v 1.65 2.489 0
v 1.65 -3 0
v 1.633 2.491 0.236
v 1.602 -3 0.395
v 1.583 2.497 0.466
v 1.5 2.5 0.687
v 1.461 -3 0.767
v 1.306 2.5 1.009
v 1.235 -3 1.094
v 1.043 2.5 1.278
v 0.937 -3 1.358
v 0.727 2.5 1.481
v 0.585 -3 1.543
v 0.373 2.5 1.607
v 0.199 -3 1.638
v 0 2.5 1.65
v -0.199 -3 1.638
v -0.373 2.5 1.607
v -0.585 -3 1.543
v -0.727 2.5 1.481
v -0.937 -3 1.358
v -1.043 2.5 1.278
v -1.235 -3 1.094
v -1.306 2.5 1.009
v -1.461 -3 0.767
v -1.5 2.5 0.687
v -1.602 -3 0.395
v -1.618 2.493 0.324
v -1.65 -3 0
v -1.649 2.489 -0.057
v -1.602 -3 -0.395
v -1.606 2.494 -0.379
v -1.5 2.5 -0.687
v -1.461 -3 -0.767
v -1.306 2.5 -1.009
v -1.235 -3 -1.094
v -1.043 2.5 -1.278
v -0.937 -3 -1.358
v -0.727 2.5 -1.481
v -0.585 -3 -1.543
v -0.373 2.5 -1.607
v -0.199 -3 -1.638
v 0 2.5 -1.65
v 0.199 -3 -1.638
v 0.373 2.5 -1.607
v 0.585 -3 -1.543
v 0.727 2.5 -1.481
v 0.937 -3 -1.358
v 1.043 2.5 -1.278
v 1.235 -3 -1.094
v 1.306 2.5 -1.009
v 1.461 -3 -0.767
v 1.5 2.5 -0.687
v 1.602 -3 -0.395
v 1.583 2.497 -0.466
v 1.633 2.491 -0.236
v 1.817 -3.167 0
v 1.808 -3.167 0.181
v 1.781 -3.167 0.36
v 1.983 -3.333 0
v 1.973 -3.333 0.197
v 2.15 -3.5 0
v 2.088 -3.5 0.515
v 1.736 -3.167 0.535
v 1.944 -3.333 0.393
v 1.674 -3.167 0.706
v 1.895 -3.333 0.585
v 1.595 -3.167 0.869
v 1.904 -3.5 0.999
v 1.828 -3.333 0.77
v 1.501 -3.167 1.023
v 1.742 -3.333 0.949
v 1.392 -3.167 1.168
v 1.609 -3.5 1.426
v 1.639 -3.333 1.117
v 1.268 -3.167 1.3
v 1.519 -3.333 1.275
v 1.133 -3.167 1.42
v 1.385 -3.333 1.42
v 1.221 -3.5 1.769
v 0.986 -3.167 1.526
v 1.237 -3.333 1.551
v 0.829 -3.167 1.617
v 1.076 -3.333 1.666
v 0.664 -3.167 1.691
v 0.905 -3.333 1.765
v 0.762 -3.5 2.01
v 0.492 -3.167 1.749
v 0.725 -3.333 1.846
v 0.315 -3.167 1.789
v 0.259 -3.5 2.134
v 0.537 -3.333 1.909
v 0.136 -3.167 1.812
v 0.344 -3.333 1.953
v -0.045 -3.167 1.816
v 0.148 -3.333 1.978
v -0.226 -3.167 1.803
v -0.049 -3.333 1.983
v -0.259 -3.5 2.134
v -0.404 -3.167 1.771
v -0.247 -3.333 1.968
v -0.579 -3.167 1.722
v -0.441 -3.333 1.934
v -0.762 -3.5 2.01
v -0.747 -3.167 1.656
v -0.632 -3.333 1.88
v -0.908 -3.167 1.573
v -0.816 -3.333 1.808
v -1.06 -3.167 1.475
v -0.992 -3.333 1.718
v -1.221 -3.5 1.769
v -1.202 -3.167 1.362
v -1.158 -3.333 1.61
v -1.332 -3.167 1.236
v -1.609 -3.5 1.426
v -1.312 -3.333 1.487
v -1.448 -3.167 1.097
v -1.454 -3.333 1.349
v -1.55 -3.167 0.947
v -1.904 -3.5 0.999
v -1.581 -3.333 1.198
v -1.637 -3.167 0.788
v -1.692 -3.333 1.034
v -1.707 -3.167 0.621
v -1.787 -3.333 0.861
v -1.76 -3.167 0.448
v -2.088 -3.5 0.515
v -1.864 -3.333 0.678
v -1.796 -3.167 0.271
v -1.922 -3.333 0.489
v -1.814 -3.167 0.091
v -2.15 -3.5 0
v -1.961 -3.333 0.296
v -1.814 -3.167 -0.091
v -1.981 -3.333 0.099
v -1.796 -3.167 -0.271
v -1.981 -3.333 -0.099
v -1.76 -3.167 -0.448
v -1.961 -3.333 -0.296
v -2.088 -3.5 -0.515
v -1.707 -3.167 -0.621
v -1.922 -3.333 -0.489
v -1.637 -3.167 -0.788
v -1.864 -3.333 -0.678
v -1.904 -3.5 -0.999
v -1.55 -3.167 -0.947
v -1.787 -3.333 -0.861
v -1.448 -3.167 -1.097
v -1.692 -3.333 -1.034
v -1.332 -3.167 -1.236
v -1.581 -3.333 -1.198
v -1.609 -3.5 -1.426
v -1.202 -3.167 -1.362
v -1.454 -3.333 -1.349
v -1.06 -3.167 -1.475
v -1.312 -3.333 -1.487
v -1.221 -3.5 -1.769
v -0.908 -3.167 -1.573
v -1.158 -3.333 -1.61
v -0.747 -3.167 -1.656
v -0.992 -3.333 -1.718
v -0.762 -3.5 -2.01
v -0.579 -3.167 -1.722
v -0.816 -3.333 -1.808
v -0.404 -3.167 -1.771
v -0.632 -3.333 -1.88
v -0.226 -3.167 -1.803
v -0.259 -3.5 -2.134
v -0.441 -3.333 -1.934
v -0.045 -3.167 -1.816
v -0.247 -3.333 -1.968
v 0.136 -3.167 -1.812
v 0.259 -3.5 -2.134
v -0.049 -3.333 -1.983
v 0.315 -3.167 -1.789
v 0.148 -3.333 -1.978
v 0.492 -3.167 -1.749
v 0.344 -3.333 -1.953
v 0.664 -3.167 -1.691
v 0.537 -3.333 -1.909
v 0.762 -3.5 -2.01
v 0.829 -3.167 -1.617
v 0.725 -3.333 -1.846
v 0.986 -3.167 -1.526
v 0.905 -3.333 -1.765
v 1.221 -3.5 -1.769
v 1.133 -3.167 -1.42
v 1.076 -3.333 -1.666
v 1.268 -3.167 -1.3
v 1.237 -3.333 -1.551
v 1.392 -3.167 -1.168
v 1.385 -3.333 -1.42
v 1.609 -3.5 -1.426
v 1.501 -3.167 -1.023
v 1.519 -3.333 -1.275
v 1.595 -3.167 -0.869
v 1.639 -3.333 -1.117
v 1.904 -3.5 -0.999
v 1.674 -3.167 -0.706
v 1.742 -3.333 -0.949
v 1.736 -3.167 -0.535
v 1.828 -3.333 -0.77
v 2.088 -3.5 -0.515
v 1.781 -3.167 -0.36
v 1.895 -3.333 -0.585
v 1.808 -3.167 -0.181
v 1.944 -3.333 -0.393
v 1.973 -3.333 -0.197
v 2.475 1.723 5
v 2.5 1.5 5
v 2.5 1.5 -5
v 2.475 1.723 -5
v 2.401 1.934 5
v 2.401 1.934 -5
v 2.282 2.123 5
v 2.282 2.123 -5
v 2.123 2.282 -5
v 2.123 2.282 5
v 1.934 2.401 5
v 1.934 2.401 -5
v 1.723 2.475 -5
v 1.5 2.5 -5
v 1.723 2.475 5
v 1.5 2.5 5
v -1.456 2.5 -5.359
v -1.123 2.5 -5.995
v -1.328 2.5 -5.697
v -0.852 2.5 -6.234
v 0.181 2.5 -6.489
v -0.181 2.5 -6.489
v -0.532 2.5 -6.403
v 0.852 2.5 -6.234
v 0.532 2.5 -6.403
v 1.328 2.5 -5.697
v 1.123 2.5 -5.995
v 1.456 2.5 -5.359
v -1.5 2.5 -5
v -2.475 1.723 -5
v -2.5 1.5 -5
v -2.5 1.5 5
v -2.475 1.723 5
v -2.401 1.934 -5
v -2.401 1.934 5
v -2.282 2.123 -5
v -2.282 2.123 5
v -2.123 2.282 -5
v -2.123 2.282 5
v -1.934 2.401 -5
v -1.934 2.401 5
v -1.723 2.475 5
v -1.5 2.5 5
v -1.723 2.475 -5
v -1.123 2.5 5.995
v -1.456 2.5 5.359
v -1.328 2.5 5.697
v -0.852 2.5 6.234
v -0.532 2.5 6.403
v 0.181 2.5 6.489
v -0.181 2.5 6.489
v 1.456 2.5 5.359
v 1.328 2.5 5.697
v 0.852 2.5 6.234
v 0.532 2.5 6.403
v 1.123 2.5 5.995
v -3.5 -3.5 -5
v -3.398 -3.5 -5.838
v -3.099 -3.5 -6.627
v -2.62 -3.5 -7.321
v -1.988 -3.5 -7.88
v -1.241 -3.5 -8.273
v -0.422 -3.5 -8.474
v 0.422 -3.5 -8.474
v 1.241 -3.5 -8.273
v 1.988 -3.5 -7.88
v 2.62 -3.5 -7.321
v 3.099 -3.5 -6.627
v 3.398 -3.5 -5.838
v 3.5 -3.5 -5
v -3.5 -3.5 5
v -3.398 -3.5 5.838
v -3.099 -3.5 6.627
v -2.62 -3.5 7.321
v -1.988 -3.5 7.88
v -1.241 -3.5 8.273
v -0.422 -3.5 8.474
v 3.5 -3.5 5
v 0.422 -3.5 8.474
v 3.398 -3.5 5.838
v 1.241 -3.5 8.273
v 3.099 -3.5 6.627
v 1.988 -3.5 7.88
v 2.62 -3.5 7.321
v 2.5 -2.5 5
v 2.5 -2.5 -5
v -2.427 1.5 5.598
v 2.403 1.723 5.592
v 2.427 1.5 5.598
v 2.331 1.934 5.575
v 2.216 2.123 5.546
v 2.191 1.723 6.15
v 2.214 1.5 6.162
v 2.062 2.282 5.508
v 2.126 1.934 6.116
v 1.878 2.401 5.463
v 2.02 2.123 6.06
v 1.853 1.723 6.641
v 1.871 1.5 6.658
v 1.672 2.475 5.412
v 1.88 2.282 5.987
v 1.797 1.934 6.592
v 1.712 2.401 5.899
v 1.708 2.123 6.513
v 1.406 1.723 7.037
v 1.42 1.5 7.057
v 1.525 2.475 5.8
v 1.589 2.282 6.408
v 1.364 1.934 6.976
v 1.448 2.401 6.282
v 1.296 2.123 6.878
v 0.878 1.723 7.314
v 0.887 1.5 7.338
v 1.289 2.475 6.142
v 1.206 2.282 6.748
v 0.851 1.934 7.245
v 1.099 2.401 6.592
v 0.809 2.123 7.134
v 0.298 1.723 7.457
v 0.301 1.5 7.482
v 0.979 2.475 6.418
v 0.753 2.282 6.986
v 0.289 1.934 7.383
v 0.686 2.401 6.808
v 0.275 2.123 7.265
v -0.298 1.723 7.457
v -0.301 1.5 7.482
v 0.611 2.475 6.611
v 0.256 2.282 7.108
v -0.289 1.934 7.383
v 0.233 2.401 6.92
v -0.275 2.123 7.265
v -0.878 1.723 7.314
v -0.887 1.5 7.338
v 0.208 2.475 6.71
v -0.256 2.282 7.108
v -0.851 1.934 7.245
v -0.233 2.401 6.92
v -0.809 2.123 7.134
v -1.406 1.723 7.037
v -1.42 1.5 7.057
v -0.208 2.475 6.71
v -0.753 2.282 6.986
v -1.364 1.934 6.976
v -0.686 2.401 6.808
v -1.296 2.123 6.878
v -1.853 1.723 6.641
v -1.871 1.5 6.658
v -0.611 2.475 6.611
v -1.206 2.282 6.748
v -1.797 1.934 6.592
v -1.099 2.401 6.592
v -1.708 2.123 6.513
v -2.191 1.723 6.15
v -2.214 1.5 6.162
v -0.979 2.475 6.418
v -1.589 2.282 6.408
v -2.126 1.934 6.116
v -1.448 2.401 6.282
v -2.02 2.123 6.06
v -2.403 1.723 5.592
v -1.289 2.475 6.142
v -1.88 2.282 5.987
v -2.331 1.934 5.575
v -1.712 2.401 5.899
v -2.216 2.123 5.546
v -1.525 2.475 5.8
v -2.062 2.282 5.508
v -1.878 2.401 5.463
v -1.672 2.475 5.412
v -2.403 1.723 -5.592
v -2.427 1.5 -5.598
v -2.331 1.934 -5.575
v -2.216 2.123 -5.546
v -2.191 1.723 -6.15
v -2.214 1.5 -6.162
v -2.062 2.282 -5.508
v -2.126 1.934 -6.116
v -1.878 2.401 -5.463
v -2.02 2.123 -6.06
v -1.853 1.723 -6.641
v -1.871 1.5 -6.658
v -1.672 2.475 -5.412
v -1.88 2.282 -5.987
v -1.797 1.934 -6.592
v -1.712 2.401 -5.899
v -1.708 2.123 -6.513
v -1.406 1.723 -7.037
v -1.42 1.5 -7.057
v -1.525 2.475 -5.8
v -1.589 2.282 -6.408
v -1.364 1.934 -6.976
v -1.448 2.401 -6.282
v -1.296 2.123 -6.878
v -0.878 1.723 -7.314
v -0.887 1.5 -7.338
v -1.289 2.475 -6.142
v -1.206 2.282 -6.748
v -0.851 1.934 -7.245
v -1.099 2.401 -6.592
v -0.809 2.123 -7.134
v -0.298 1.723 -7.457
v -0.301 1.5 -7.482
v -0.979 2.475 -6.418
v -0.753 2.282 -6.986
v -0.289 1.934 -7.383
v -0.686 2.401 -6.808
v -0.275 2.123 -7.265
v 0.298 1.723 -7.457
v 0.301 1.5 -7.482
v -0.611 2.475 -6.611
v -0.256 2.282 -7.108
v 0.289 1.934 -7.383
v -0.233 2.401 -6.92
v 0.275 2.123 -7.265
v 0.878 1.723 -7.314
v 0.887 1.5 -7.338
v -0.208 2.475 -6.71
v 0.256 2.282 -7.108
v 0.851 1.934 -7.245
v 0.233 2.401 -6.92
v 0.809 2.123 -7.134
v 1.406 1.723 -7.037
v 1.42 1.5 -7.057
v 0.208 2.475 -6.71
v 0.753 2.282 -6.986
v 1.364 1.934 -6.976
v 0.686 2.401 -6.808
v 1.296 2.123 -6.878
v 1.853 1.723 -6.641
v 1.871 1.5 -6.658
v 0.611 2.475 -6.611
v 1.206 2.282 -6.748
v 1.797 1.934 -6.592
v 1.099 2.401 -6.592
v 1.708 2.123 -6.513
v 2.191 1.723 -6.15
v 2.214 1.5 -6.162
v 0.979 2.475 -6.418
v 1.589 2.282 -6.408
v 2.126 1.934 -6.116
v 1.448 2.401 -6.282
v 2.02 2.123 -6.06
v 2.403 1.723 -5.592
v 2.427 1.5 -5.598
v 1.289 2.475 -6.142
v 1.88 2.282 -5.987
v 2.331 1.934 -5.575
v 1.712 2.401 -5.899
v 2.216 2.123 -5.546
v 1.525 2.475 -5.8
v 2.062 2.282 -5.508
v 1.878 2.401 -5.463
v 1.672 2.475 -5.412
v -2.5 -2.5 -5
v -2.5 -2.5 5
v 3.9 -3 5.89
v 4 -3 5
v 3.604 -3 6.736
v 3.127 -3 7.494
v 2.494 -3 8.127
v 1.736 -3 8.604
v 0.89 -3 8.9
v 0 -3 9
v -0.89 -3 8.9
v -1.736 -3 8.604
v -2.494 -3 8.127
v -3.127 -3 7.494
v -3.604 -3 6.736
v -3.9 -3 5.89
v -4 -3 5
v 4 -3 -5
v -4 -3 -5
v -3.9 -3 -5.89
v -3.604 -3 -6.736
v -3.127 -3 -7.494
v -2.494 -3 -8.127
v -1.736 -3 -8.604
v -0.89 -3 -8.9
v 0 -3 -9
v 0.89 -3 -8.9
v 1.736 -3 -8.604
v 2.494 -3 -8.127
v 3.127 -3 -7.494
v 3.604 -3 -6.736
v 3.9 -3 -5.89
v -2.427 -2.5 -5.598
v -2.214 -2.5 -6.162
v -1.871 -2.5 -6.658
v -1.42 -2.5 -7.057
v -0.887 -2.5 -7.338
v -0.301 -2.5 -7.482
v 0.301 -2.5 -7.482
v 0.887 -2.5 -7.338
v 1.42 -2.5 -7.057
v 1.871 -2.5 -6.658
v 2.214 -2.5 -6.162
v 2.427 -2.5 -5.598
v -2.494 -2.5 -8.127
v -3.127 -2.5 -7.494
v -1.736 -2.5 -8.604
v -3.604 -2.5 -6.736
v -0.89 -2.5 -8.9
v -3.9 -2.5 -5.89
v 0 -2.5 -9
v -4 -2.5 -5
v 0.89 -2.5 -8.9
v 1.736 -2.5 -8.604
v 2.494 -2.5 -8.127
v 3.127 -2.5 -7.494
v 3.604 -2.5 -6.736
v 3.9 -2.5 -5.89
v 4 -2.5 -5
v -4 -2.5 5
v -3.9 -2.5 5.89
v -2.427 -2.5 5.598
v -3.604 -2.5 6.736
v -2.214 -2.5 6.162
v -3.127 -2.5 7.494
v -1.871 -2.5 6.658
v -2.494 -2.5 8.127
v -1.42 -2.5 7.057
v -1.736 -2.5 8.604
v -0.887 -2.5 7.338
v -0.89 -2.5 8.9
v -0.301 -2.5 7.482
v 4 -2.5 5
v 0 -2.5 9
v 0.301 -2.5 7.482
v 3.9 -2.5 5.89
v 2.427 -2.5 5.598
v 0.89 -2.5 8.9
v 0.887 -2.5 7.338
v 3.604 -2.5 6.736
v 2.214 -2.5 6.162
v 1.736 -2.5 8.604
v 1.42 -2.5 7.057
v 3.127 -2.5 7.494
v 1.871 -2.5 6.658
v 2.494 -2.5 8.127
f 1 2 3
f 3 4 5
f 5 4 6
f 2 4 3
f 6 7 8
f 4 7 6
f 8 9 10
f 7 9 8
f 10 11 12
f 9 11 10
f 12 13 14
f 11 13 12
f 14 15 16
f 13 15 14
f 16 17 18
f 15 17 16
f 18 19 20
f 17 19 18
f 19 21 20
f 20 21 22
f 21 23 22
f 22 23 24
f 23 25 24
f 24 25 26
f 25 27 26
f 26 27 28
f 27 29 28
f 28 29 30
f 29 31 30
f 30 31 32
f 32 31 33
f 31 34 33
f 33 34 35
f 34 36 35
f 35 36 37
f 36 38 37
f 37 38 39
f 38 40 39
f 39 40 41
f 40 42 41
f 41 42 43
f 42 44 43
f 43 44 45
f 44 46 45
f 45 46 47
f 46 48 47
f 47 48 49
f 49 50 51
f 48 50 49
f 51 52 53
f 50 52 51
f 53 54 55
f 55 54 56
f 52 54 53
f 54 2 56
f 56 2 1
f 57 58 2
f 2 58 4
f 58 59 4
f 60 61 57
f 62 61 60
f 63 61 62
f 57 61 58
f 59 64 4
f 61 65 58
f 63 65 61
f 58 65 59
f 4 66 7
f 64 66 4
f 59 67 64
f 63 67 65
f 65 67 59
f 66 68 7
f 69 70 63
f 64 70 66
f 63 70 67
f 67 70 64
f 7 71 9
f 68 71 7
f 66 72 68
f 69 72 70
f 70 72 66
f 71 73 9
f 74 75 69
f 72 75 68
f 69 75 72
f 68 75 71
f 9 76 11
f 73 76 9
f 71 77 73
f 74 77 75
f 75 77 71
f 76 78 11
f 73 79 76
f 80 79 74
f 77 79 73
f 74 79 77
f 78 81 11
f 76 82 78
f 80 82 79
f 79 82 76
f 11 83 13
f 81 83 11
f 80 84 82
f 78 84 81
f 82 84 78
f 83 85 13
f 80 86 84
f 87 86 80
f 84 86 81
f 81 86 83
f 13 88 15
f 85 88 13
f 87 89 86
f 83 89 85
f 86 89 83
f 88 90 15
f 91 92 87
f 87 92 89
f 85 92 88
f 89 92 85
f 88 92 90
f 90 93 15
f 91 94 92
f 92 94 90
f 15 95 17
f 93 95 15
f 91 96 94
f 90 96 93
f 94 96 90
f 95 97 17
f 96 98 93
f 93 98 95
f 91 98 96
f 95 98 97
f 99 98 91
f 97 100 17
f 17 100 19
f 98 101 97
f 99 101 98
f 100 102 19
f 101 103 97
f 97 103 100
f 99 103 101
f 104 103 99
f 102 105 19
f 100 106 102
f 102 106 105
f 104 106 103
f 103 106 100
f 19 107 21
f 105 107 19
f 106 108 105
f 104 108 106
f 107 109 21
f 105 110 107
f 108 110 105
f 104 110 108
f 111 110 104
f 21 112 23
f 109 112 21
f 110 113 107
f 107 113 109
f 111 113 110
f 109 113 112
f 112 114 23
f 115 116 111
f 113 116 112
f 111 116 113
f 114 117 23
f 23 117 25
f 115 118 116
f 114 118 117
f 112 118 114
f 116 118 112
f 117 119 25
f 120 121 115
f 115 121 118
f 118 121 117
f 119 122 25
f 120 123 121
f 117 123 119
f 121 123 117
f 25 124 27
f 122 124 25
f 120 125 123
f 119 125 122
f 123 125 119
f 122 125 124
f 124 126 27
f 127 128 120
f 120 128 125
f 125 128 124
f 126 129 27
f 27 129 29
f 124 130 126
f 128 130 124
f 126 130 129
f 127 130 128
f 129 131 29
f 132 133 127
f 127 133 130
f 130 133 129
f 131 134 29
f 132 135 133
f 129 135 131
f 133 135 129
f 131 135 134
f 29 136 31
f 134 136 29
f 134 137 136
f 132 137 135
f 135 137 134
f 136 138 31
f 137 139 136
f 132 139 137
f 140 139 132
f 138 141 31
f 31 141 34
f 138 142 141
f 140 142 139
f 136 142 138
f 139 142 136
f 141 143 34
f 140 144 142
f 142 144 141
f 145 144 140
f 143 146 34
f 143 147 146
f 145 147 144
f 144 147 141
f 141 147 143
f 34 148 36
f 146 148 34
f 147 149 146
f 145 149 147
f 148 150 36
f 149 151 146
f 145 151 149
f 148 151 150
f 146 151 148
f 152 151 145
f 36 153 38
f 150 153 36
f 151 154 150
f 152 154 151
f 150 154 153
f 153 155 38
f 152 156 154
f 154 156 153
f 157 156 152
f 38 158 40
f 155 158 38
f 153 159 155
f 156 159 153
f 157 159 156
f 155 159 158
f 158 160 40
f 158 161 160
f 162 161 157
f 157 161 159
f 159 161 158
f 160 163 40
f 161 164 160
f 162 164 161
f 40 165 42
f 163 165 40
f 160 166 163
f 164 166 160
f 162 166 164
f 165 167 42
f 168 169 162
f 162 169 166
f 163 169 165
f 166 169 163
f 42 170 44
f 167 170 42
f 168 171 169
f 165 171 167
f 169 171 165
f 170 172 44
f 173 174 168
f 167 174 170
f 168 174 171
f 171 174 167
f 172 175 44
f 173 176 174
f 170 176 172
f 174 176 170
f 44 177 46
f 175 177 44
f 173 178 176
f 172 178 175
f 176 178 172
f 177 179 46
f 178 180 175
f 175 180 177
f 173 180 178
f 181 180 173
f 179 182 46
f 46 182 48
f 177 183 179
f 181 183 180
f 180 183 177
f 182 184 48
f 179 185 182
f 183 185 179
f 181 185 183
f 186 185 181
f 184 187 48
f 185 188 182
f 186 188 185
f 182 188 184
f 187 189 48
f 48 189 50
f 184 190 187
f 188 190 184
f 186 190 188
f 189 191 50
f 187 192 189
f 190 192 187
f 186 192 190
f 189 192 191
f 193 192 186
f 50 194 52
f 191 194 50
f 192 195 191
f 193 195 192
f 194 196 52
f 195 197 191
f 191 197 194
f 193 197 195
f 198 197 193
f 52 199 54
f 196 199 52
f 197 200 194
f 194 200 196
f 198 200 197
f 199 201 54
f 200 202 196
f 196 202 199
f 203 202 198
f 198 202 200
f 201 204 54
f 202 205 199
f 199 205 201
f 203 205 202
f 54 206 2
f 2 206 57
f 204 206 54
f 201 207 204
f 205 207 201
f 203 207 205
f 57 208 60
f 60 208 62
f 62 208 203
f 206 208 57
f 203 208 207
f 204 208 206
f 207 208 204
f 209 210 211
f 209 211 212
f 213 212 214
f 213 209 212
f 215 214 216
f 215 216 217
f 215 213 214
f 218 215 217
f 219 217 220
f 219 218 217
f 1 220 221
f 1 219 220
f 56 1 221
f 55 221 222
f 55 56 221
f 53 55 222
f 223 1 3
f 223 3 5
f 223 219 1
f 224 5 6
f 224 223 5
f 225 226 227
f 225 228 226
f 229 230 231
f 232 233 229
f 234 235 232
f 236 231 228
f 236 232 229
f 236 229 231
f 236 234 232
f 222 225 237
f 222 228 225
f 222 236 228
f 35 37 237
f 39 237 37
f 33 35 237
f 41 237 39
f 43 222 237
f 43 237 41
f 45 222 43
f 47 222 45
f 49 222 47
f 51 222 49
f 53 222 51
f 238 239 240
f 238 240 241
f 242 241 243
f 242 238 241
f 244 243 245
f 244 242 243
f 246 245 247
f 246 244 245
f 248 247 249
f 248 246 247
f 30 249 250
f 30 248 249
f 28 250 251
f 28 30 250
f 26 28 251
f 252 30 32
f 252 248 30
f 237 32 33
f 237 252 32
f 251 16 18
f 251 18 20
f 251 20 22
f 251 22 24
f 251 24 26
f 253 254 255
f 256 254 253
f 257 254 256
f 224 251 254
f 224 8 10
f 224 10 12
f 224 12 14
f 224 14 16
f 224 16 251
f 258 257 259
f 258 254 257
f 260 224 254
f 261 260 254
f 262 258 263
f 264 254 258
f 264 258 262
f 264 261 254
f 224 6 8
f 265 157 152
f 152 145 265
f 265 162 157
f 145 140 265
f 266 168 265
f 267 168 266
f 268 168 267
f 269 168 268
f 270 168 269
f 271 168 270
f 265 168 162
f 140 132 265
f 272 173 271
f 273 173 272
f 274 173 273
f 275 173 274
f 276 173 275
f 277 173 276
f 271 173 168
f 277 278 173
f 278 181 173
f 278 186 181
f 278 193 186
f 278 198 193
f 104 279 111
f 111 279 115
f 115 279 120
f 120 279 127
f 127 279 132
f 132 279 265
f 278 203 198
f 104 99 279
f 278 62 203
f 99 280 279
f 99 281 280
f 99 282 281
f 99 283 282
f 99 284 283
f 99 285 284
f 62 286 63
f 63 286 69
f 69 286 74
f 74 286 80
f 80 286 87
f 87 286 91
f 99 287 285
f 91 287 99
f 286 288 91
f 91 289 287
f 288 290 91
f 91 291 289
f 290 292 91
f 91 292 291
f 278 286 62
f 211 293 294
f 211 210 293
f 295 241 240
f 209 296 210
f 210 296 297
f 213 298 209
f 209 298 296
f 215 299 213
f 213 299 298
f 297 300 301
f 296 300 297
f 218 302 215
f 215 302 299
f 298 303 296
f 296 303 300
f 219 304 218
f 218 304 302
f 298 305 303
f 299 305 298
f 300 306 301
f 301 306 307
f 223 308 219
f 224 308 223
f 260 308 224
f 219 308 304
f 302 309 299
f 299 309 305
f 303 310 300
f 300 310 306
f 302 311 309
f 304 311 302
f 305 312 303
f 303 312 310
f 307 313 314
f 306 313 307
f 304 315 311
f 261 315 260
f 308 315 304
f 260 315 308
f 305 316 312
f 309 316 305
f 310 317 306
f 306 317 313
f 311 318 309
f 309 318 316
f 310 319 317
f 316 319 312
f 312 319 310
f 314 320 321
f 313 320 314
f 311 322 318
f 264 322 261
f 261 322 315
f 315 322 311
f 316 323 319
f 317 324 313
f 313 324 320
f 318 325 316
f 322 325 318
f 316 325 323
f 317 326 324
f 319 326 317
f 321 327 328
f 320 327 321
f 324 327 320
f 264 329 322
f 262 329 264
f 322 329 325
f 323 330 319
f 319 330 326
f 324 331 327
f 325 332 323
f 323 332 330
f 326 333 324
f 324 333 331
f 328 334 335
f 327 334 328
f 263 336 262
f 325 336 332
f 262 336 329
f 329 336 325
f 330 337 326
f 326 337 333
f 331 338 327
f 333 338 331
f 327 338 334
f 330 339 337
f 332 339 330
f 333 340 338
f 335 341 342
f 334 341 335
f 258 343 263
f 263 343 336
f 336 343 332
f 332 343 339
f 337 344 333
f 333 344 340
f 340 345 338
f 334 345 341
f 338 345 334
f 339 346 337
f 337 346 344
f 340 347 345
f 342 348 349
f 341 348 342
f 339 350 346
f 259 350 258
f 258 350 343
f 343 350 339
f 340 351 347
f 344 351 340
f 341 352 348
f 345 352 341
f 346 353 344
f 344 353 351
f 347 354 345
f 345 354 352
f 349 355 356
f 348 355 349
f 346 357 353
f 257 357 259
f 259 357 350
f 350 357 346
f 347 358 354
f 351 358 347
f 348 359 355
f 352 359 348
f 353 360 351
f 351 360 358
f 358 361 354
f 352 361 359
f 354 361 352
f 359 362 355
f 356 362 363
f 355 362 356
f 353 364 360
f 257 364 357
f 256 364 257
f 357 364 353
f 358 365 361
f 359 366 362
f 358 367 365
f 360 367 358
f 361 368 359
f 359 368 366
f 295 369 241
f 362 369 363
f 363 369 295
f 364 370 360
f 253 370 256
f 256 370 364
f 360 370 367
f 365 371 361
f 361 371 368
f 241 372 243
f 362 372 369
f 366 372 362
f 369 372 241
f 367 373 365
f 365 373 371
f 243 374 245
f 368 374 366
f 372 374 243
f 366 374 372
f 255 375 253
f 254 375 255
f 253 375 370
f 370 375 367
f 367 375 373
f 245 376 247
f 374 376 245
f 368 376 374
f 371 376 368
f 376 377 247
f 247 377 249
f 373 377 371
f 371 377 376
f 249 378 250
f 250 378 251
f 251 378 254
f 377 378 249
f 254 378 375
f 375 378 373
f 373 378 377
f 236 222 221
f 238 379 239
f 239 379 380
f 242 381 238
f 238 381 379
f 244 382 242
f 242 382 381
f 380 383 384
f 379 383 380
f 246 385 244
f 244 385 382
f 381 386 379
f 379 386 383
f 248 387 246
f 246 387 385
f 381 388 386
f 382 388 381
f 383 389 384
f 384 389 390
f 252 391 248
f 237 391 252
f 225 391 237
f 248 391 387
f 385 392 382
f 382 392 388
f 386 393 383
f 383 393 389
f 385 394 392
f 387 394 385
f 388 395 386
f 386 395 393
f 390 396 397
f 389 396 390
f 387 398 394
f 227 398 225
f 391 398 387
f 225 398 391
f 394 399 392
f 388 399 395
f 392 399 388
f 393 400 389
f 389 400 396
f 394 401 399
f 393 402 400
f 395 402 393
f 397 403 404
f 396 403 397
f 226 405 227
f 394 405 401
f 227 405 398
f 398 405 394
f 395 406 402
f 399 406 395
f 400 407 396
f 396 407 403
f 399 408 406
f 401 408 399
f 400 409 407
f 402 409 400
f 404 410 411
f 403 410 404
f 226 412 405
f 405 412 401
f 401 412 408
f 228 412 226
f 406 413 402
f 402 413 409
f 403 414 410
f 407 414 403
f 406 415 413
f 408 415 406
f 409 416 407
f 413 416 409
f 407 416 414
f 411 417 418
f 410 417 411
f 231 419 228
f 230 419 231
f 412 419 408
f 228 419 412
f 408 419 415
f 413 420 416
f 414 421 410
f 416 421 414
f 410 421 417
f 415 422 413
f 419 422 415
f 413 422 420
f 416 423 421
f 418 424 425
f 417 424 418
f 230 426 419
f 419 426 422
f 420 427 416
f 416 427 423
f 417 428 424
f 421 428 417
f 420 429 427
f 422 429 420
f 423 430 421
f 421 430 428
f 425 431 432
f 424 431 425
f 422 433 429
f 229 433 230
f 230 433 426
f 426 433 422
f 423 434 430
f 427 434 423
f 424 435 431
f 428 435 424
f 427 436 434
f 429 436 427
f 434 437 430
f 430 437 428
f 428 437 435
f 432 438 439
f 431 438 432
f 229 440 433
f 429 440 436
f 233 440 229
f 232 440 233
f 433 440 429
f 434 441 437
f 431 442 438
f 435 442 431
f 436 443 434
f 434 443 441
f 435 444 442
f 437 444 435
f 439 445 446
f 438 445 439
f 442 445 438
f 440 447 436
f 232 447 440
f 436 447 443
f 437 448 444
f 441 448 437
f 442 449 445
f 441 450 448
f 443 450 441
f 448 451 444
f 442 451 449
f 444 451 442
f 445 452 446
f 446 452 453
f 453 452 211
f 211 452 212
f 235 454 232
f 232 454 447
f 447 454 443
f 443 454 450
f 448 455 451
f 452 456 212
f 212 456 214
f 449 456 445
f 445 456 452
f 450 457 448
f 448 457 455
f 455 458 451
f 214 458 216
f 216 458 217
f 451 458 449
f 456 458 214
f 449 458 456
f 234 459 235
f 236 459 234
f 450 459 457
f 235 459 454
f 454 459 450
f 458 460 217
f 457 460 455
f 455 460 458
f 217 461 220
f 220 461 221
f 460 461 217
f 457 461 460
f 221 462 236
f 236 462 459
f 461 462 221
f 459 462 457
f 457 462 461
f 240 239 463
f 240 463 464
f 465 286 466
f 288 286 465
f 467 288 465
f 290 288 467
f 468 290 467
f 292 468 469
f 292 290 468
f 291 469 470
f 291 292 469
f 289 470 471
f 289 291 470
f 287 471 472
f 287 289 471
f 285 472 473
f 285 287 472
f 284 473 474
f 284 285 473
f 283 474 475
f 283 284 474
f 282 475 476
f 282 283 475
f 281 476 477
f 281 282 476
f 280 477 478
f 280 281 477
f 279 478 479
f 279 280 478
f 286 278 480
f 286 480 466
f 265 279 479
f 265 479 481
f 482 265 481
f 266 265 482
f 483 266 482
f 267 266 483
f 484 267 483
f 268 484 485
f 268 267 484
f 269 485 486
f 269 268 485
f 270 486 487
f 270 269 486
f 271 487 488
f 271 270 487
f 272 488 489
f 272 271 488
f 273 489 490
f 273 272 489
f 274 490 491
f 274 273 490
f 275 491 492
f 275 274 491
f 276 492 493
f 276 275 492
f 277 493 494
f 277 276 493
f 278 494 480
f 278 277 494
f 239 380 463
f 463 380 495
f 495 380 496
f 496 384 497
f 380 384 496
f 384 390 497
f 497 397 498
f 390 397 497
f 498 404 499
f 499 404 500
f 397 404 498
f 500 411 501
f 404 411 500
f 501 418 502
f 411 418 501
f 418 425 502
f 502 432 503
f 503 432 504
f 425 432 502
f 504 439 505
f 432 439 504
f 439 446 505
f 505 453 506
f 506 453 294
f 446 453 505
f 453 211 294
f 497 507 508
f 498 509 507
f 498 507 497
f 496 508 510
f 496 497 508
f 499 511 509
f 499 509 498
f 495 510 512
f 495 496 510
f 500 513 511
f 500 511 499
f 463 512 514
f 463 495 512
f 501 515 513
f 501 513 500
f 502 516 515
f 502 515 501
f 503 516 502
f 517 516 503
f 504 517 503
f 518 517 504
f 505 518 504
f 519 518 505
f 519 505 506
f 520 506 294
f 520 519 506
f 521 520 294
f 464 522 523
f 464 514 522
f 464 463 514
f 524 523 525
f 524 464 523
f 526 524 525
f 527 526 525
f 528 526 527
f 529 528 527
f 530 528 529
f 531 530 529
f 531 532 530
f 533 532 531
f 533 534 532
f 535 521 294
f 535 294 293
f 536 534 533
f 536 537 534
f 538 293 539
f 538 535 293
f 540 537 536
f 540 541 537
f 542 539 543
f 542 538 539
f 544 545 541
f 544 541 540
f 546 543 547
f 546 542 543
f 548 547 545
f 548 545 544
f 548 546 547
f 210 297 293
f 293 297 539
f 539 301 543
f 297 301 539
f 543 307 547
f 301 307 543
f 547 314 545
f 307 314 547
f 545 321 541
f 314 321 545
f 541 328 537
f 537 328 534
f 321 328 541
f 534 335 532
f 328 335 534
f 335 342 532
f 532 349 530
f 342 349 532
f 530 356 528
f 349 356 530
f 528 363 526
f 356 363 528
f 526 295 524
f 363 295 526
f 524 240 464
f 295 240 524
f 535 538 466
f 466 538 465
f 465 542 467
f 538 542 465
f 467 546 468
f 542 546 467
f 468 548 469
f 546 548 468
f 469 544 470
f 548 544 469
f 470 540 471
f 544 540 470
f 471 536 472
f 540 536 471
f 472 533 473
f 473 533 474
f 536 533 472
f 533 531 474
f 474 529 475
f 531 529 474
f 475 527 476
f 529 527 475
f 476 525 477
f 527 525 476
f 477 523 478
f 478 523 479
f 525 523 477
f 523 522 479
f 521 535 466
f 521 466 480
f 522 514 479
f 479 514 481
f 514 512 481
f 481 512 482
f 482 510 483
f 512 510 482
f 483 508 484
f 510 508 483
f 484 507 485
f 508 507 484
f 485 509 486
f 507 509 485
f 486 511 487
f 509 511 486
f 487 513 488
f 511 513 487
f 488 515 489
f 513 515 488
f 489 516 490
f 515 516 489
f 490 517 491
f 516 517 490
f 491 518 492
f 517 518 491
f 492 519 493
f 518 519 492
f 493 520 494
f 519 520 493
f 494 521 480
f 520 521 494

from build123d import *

# Parameters (mm, degrees)
PAD_DEPTH       = 2.5
PAD001_DEPTH    = 1
CHAMFER_SIZE    = 0.5
FILLET_R        = 1
SKETCH002_R     = 1.65
POCKET_DEPTH    = 6.001
CHAMFER001_SIZE = 0.5


with BuildPart() as part:
    # Sketch → Pad (new body, symmetric)
    with BuildSketch(Plane.XZ):
        with BuildLine():
            ThreePointArc((-2.5, -5), (0, -7.5), (2.5, -5))
            Line((2.5, -5), (2.5, 5))
            ThreePointArc((2.5, 5), (0, 7.5), (-2.5, 5))
            Line((-2.5, -5), (-2.5, 5))
        make_face()
    extrude(amount=PAD_DEPTH, both=True)

    # Sketch001 (on Face6 of Pad) → Pad001 (join)
    with BuildSketch(Plane.XZ.offset(2.5)):
        with BuildLine():
            ThreePointArc((4, 5), (0, 9), (-4, 5))
            Line((-4, 5), (-4, -5))
            ThreePointArc((-4, -5), (0, -9), (4, -5))
            Line((4, 5), (4, -5))
        make_face()
    extrude(amount=PAD001_DEPTH)

    # Chamfer
    chamfer_edges = [part.edges().sort_by_distance(p)[0] for p in [
        (0, -3.5, 9),
    ]]
    chamfer(chamfer_edges, length=CHAMFER_SIZE)

    # Fillet
    fillet_edges = [part.edges().sort_by_distance(p)[0] for p in [
        (0, 2.5, 7.5),
    ]]
    fillet(fillet_edges, radius=FILLET_R)

    # Sketch002 (on Face19 of Fillet) → Pocket (cut, through all)
    with BuildSketch(Plane.XZ.offset(3.5)):
        Circle(SKETCH002_R)
    extrude(amount=-POCKET_DEPTH, mode=Mode.SUBTRACT)

    # Chamfer001
    chamfer001_edges = [part.edges().sort_by_distance(p)[0] for p in [
        (-1.65, -3.5, 0),
    ]]
    chamfer(chamfer001_edges, length=CHAMFER001_SIZE)


solid = part.part
